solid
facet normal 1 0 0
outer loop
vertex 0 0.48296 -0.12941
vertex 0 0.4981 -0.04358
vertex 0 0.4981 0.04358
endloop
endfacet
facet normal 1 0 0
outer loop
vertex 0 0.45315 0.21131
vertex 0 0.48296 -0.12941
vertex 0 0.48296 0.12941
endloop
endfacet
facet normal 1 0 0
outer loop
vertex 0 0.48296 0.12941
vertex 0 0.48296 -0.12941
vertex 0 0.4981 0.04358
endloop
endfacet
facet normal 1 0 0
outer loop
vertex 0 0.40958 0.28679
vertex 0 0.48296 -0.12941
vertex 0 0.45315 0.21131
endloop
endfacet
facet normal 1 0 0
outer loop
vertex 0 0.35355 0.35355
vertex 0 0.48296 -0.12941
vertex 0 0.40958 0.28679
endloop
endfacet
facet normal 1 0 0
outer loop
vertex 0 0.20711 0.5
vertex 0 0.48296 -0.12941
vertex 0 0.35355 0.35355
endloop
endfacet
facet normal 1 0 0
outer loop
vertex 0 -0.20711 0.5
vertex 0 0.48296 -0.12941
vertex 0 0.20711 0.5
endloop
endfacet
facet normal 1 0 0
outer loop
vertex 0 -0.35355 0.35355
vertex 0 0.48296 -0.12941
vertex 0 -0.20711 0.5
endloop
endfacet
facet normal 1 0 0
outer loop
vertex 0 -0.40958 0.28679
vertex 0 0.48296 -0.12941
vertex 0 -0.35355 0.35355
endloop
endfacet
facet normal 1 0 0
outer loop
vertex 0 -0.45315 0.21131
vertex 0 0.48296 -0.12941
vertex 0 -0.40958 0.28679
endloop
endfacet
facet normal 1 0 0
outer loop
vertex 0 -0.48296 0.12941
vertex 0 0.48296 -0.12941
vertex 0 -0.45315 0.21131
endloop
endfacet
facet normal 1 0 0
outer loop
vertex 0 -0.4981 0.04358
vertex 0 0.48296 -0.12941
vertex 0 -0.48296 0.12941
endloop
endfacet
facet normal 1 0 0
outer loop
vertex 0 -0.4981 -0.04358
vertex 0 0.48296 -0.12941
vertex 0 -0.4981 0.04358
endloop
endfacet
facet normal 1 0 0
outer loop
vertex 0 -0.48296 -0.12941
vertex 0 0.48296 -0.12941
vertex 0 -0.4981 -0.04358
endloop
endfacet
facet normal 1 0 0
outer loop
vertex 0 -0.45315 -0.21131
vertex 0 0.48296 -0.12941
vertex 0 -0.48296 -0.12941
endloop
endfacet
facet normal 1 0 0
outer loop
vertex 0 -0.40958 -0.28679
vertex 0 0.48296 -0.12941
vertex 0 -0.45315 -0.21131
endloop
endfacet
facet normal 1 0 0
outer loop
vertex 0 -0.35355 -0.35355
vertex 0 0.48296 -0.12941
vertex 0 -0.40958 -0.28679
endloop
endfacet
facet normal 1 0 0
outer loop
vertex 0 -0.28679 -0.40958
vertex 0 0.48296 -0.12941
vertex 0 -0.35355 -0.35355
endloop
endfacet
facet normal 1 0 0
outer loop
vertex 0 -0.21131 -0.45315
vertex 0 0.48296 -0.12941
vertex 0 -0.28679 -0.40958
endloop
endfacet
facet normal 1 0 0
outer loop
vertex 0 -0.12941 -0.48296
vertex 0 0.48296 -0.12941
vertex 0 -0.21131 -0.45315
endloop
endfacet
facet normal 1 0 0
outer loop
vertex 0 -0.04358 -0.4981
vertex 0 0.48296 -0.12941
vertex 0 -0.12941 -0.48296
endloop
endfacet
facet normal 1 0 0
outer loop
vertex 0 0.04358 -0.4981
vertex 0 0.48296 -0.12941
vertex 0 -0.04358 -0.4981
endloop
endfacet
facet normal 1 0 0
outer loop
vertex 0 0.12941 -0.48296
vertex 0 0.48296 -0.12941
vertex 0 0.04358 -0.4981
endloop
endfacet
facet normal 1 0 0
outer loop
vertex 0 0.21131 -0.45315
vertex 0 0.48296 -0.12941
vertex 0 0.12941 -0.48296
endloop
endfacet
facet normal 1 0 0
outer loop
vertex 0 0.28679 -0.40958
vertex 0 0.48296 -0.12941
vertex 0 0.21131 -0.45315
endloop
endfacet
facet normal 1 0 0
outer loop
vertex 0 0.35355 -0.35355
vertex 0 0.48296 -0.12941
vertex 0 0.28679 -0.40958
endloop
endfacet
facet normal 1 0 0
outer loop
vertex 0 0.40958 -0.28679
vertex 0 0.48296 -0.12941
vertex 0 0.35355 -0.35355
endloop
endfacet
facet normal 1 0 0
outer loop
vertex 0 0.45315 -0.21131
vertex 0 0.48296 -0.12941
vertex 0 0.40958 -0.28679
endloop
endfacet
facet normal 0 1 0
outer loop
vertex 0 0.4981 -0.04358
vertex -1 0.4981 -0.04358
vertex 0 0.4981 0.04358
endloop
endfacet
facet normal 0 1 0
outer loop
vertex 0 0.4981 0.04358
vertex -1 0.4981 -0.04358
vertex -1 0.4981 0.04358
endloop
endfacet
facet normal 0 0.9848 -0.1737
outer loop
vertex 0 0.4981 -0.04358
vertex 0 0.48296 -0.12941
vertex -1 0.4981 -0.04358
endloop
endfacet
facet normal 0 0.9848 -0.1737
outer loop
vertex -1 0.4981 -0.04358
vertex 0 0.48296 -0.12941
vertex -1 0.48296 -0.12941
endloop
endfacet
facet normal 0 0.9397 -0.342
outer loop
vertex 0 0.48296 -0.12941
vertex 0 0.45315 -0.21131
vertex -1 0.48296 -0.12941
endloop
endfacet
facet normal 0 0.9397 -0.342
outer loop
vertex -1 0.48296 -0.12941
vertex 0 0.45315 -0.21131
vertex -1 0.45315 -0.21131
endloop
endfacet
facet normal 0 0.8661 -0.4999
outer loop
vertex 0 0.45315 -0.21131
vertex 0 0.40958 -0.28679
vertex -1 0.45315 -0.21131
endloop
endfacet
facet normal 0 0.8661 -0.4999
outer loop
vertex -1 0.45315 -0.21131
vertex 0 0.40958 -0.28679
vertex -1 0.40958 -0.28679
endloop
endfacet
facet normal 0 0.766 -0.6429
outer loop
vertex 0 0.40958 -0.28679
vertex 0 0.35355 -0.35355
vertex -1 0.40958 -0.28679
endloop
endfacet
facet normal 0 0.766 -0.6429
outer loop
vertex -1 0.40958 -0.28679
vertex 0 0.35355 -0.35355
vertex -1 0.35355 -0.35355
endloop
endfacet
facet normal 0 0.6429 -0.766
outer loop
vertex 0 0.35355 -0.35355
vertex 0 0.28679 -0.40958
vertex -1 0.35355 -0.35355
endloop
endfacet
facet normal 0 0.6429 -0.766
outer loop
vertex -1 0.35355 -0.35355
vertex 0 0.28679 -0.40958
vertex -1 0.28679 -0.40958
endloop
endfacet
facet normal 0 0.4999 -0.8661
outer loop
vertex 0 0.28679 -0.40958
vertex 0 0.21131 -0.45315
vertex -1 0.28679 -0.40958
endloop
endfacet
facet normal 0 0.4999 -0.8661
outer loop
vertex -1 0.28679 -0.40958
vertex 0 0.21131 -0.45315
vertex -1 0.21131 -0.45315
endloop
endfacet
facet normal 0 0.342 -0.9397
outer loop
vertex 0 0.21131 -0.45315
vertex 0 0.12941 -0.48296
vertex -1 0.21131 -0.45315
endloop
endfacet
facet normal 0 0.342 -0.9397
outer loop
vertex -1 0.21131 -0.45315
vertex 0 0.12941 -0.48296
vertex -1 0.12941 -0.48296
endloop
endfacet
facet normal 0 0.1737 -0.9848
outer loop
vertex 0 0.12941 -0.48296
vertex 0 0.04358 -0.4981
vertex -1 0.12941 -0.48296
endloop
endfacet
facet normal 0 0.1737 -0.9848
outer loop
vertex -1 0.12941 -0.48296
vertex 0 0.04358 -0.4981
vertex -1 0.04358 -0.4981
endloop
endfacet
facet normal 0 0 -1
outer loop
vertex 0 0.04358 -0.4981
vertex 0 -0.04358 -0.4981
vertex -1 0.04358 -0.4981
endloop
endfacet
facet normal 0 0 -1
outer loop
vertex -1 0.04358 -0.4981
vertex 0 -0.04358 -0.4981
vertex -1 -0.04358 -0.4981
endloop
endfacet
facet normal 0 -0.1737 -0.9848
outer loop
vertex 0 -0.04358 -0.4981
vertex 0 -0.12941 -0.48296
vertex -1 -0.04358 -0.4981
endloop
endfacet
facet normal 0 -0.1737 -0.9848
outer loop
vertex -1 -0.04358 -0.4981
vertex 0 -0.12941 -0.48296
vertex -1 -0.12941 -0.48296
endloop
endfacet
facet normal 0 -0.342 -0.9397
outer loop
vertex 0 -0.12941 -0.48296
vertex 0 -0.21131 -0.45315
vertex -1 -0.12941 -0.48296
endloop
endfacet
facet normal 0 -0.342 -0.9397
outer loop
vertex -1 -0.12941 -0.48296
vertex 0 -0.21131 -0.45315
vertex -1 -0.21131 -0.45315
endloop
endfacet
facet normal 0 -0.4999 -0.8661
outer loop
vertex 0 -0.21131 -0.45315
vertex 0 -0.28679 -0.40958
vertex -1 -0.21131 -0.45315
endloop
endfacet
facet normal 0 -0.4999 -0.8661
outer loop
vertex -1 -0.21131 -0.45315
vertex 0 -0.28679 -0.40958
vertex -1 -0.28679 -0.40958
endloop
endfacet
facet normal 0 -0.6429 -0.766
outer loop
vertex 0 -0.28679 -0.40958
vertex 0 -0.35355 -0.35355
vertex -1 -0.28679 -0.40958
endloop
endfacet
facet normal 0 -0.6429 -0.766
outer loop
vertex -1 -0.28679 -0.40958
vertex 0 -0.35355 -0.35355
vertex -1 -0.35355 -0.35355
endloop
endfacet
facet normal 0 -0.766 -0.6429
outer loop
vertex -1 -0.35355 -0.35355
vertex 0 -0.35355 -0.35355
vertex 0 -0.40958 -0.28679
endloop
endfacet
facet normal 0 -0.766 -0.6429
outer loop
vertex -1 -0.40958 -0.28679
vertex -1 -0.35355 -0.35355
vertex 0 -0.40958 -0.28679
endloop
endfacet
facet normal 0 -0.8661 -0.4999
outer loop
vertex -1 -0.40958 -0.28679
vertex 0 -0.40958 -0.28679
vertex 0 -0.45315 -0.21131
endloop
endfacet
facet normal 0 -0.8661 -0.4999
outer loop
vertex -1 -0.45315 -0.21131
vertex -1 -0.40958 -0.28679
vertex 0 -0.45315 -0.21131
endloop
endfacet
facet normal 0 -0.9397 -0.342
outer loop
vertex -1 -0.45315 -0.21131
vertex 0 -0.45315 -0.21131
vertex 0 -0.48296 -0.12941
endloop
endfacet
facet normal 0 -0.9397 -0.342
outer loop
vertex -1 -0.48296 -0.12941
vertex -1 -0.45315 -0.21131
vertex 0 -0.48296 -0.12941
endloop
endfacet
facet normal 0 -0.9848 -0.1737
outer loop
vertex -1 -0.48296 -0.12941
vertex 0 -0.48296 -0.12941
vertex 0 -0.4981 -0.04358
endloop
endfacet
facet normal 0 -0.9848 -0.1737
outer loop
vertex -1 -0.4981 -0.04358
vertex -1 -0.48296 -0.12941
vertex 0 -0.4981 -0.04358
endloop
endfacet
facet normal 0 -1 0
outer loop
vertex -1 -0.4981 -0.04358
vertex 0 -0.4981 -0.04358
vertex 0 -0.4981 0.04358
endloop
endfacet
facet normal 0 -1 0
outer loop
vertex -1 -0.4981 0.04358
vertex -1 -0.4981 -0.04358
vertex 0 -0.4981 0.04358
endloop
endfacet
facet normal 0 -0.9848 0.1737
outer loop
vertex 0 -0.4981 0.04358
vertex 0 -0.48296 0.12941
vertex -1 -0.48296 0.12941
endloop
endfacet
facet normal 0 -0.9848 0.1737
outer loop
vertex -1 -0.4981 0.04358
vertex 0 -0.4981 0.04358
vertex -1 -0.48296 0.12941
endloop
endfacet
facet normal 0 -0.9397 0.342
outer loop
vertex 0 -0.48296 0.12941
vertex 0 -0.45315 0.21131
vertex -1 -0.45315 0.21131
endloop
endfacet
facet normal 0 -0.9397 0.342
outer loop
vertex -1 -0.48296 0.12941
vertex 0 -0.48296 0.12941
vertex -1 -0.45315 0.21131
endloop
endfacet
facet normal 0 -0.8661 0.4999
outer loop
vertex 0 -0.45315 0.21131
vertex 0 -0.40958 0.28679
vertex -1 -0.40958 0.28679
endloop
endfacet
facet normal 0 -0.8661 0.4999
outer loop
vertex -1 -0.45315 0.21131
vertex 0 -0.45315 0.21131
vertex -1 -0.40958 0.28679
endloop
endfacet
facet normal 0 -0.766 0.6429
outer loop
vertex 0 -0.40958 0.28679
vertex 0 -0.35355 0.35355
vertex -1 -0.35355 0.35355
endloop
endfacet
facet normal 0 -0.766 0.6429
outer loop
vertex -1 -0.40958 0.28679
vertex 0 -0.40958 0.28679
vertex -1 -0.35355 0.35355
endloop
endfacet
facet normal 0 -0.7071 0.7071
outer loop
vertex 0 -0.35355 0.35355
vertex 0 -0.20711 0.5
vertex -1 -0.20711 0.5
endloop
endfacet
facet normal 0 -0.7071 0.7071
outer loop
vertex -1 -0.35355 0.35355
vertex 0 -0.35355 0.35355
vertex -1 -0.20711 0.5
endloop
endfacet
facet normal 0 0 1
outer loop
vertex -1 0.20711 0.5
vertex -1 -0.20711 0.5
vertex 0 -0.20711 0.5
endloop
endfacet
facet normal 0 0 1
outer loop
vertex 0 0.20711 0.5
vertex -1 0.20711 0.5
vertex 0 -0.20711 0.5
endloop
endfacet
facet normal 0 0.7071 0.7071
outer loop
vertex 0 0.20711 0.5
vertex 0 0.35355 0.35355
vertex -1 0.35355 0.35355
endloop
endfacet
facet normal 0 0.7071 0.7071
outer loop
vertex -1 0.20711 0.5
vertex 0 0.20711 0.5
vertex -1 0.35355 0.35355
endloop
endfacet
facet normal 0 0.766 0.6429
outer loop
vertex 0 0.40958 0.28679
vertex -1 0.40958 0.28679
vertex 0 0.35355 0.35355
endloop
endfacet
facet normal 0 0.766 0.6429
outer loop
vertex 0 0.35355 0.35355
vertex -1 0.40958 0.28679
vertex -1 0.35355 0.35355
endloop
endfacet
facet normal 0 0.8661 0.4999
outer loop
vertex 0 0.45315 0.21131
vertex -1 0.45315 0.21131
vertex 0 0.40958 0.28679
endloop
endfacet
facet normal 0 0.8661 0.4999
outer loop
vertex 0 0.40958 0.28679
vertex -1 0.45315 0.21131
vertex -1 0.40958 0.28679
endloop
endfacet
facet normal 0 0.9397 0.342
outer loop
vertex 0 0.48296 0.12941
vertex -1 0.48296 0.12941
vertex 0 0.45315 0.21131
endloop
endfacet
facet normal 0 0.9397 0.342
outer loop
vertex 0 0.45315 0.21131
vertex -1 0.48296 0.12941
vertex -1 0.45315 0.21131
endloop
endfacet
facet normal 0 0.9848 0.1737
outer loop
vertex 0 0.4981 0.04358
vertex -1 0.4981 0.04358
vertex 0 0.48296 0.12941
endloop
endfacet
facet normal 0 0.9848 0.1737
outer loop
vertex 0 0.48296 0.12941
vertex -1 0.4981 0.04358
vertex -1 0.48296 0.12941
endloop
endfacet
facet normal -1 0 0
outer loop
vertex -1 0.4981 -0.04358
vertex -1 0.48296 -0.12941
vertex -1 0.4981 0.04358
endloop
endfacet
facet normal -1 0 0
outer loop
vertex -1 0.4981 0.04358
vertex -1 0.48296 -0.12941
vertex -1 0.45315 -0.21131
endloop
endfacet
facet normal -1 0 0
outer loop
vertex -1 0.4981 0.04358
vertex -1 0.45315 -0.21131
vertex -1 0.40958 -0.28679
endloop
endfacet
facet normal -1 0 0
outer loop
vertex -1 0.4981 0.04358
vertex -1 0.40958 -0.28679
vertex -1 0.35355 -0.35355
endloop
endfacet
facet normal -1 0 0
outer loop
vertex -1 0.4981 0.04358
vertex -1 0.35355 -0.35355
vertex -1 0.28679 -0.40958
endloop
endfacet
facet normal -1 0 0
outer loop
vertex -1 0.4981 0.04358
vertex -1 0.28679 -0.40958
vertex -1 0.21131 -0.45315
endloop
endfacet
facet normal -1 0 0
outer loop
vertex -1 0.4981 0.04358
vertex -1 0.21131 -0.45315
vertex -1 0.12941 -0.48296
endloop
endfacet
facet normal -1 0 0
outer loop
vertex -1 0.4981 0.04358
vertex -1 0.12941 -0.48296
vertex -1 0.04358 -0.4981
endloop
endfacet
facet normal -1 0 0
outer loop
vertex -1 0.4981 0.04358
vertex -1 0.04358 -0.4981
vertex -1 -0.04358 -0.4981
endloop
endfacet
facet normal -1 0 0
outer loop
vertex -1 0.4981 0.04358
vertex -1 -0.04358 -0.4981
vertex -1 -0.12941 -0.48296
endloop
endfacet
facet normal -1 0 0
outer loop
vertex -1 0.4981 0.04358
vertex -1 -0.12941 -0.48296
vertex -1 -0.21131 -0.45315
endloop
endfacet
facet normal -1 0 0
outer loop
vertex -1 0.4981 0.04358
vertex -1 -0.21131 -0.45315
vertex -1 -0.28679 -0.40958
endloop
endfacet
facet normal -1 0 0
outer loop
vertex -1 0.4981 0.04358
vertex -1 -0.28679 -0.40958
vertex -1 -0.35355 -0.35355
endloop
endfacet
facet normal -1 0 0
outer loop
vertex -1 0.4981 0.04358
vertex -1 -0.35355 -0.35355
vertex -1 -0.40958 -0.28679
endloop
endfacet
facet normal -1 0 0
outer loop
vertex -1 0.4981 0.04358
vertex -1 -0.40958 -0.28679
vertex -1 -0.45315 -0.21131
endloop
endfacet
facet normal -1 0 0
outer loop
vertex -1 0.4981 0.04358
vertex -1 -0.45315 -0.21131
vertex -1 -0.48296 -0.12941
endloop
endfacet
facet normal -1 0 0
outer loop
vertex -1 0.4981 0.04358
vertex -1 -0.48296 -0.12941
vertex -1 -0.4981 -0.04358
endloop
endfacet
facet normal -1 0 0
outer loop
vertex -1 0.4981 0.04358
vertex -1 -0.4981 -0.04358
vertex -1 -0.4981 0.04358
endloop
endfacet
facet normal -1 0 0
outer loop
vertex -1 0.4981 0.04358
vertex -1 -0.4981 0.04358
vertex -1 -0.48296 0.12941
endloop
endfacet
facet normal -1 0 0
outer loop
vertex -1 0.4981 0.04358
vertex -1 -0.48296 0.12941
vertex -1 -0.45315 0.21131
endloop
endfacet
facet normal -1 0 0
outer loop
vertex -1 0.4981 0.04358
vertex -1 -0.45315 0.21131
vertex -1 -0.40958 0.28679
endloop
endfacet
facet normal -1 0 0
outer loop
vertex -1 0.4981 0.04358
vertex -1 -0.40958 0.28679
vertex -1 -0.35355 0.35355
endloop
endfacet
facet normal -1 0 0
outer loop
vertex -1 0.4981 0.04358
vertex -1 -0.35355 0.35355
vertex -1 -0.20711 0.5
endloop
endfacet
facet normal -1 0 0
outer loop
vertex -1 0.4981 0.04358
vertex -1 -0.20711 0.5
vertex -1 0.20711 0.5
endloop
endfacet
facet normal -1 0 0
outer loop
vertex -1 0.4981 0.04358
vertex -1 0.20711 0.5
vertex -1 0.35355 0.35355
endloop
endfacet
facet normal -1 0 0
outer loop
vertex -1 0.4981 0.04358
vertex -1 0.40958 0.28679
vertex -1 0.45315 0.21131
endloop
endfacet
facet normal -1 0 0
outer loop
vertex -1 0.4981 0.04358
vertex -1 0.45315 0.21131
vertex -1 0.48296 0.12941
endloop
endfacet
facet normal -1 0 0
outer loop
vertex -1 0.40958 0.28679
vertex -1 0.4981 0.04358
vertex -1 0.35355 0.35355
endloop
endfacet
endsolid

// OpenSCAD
// Unit Teardrop Truncated

$fa=9;
$fs=0.1;

scale_1in=25.4;

module unit_teardrop_trunc(
        teardrop_w=1.0
        , teardrop_h=1.0
        ) {
  rotate([90,0,-90]) difference () {
    rotate([0,0,45]) union() {
      rotate([0,0,90]) cylinder(r=teardrop_w/2,h=teardrop_h,center=false,$fn=36);
      translate([0,0,0]) scale([teardrop_w/2,teardrop_w/2,teardrop_h]) cube(size=1.0,center=false);
    }
    translate([0,teardrop_w,teardrop_h/2]) scale([teardrop_w,teardrop_w,1.01*teardrop_h]) cube(size=1.0,center=true);
  }
}

unit_teardrop_trunc();
